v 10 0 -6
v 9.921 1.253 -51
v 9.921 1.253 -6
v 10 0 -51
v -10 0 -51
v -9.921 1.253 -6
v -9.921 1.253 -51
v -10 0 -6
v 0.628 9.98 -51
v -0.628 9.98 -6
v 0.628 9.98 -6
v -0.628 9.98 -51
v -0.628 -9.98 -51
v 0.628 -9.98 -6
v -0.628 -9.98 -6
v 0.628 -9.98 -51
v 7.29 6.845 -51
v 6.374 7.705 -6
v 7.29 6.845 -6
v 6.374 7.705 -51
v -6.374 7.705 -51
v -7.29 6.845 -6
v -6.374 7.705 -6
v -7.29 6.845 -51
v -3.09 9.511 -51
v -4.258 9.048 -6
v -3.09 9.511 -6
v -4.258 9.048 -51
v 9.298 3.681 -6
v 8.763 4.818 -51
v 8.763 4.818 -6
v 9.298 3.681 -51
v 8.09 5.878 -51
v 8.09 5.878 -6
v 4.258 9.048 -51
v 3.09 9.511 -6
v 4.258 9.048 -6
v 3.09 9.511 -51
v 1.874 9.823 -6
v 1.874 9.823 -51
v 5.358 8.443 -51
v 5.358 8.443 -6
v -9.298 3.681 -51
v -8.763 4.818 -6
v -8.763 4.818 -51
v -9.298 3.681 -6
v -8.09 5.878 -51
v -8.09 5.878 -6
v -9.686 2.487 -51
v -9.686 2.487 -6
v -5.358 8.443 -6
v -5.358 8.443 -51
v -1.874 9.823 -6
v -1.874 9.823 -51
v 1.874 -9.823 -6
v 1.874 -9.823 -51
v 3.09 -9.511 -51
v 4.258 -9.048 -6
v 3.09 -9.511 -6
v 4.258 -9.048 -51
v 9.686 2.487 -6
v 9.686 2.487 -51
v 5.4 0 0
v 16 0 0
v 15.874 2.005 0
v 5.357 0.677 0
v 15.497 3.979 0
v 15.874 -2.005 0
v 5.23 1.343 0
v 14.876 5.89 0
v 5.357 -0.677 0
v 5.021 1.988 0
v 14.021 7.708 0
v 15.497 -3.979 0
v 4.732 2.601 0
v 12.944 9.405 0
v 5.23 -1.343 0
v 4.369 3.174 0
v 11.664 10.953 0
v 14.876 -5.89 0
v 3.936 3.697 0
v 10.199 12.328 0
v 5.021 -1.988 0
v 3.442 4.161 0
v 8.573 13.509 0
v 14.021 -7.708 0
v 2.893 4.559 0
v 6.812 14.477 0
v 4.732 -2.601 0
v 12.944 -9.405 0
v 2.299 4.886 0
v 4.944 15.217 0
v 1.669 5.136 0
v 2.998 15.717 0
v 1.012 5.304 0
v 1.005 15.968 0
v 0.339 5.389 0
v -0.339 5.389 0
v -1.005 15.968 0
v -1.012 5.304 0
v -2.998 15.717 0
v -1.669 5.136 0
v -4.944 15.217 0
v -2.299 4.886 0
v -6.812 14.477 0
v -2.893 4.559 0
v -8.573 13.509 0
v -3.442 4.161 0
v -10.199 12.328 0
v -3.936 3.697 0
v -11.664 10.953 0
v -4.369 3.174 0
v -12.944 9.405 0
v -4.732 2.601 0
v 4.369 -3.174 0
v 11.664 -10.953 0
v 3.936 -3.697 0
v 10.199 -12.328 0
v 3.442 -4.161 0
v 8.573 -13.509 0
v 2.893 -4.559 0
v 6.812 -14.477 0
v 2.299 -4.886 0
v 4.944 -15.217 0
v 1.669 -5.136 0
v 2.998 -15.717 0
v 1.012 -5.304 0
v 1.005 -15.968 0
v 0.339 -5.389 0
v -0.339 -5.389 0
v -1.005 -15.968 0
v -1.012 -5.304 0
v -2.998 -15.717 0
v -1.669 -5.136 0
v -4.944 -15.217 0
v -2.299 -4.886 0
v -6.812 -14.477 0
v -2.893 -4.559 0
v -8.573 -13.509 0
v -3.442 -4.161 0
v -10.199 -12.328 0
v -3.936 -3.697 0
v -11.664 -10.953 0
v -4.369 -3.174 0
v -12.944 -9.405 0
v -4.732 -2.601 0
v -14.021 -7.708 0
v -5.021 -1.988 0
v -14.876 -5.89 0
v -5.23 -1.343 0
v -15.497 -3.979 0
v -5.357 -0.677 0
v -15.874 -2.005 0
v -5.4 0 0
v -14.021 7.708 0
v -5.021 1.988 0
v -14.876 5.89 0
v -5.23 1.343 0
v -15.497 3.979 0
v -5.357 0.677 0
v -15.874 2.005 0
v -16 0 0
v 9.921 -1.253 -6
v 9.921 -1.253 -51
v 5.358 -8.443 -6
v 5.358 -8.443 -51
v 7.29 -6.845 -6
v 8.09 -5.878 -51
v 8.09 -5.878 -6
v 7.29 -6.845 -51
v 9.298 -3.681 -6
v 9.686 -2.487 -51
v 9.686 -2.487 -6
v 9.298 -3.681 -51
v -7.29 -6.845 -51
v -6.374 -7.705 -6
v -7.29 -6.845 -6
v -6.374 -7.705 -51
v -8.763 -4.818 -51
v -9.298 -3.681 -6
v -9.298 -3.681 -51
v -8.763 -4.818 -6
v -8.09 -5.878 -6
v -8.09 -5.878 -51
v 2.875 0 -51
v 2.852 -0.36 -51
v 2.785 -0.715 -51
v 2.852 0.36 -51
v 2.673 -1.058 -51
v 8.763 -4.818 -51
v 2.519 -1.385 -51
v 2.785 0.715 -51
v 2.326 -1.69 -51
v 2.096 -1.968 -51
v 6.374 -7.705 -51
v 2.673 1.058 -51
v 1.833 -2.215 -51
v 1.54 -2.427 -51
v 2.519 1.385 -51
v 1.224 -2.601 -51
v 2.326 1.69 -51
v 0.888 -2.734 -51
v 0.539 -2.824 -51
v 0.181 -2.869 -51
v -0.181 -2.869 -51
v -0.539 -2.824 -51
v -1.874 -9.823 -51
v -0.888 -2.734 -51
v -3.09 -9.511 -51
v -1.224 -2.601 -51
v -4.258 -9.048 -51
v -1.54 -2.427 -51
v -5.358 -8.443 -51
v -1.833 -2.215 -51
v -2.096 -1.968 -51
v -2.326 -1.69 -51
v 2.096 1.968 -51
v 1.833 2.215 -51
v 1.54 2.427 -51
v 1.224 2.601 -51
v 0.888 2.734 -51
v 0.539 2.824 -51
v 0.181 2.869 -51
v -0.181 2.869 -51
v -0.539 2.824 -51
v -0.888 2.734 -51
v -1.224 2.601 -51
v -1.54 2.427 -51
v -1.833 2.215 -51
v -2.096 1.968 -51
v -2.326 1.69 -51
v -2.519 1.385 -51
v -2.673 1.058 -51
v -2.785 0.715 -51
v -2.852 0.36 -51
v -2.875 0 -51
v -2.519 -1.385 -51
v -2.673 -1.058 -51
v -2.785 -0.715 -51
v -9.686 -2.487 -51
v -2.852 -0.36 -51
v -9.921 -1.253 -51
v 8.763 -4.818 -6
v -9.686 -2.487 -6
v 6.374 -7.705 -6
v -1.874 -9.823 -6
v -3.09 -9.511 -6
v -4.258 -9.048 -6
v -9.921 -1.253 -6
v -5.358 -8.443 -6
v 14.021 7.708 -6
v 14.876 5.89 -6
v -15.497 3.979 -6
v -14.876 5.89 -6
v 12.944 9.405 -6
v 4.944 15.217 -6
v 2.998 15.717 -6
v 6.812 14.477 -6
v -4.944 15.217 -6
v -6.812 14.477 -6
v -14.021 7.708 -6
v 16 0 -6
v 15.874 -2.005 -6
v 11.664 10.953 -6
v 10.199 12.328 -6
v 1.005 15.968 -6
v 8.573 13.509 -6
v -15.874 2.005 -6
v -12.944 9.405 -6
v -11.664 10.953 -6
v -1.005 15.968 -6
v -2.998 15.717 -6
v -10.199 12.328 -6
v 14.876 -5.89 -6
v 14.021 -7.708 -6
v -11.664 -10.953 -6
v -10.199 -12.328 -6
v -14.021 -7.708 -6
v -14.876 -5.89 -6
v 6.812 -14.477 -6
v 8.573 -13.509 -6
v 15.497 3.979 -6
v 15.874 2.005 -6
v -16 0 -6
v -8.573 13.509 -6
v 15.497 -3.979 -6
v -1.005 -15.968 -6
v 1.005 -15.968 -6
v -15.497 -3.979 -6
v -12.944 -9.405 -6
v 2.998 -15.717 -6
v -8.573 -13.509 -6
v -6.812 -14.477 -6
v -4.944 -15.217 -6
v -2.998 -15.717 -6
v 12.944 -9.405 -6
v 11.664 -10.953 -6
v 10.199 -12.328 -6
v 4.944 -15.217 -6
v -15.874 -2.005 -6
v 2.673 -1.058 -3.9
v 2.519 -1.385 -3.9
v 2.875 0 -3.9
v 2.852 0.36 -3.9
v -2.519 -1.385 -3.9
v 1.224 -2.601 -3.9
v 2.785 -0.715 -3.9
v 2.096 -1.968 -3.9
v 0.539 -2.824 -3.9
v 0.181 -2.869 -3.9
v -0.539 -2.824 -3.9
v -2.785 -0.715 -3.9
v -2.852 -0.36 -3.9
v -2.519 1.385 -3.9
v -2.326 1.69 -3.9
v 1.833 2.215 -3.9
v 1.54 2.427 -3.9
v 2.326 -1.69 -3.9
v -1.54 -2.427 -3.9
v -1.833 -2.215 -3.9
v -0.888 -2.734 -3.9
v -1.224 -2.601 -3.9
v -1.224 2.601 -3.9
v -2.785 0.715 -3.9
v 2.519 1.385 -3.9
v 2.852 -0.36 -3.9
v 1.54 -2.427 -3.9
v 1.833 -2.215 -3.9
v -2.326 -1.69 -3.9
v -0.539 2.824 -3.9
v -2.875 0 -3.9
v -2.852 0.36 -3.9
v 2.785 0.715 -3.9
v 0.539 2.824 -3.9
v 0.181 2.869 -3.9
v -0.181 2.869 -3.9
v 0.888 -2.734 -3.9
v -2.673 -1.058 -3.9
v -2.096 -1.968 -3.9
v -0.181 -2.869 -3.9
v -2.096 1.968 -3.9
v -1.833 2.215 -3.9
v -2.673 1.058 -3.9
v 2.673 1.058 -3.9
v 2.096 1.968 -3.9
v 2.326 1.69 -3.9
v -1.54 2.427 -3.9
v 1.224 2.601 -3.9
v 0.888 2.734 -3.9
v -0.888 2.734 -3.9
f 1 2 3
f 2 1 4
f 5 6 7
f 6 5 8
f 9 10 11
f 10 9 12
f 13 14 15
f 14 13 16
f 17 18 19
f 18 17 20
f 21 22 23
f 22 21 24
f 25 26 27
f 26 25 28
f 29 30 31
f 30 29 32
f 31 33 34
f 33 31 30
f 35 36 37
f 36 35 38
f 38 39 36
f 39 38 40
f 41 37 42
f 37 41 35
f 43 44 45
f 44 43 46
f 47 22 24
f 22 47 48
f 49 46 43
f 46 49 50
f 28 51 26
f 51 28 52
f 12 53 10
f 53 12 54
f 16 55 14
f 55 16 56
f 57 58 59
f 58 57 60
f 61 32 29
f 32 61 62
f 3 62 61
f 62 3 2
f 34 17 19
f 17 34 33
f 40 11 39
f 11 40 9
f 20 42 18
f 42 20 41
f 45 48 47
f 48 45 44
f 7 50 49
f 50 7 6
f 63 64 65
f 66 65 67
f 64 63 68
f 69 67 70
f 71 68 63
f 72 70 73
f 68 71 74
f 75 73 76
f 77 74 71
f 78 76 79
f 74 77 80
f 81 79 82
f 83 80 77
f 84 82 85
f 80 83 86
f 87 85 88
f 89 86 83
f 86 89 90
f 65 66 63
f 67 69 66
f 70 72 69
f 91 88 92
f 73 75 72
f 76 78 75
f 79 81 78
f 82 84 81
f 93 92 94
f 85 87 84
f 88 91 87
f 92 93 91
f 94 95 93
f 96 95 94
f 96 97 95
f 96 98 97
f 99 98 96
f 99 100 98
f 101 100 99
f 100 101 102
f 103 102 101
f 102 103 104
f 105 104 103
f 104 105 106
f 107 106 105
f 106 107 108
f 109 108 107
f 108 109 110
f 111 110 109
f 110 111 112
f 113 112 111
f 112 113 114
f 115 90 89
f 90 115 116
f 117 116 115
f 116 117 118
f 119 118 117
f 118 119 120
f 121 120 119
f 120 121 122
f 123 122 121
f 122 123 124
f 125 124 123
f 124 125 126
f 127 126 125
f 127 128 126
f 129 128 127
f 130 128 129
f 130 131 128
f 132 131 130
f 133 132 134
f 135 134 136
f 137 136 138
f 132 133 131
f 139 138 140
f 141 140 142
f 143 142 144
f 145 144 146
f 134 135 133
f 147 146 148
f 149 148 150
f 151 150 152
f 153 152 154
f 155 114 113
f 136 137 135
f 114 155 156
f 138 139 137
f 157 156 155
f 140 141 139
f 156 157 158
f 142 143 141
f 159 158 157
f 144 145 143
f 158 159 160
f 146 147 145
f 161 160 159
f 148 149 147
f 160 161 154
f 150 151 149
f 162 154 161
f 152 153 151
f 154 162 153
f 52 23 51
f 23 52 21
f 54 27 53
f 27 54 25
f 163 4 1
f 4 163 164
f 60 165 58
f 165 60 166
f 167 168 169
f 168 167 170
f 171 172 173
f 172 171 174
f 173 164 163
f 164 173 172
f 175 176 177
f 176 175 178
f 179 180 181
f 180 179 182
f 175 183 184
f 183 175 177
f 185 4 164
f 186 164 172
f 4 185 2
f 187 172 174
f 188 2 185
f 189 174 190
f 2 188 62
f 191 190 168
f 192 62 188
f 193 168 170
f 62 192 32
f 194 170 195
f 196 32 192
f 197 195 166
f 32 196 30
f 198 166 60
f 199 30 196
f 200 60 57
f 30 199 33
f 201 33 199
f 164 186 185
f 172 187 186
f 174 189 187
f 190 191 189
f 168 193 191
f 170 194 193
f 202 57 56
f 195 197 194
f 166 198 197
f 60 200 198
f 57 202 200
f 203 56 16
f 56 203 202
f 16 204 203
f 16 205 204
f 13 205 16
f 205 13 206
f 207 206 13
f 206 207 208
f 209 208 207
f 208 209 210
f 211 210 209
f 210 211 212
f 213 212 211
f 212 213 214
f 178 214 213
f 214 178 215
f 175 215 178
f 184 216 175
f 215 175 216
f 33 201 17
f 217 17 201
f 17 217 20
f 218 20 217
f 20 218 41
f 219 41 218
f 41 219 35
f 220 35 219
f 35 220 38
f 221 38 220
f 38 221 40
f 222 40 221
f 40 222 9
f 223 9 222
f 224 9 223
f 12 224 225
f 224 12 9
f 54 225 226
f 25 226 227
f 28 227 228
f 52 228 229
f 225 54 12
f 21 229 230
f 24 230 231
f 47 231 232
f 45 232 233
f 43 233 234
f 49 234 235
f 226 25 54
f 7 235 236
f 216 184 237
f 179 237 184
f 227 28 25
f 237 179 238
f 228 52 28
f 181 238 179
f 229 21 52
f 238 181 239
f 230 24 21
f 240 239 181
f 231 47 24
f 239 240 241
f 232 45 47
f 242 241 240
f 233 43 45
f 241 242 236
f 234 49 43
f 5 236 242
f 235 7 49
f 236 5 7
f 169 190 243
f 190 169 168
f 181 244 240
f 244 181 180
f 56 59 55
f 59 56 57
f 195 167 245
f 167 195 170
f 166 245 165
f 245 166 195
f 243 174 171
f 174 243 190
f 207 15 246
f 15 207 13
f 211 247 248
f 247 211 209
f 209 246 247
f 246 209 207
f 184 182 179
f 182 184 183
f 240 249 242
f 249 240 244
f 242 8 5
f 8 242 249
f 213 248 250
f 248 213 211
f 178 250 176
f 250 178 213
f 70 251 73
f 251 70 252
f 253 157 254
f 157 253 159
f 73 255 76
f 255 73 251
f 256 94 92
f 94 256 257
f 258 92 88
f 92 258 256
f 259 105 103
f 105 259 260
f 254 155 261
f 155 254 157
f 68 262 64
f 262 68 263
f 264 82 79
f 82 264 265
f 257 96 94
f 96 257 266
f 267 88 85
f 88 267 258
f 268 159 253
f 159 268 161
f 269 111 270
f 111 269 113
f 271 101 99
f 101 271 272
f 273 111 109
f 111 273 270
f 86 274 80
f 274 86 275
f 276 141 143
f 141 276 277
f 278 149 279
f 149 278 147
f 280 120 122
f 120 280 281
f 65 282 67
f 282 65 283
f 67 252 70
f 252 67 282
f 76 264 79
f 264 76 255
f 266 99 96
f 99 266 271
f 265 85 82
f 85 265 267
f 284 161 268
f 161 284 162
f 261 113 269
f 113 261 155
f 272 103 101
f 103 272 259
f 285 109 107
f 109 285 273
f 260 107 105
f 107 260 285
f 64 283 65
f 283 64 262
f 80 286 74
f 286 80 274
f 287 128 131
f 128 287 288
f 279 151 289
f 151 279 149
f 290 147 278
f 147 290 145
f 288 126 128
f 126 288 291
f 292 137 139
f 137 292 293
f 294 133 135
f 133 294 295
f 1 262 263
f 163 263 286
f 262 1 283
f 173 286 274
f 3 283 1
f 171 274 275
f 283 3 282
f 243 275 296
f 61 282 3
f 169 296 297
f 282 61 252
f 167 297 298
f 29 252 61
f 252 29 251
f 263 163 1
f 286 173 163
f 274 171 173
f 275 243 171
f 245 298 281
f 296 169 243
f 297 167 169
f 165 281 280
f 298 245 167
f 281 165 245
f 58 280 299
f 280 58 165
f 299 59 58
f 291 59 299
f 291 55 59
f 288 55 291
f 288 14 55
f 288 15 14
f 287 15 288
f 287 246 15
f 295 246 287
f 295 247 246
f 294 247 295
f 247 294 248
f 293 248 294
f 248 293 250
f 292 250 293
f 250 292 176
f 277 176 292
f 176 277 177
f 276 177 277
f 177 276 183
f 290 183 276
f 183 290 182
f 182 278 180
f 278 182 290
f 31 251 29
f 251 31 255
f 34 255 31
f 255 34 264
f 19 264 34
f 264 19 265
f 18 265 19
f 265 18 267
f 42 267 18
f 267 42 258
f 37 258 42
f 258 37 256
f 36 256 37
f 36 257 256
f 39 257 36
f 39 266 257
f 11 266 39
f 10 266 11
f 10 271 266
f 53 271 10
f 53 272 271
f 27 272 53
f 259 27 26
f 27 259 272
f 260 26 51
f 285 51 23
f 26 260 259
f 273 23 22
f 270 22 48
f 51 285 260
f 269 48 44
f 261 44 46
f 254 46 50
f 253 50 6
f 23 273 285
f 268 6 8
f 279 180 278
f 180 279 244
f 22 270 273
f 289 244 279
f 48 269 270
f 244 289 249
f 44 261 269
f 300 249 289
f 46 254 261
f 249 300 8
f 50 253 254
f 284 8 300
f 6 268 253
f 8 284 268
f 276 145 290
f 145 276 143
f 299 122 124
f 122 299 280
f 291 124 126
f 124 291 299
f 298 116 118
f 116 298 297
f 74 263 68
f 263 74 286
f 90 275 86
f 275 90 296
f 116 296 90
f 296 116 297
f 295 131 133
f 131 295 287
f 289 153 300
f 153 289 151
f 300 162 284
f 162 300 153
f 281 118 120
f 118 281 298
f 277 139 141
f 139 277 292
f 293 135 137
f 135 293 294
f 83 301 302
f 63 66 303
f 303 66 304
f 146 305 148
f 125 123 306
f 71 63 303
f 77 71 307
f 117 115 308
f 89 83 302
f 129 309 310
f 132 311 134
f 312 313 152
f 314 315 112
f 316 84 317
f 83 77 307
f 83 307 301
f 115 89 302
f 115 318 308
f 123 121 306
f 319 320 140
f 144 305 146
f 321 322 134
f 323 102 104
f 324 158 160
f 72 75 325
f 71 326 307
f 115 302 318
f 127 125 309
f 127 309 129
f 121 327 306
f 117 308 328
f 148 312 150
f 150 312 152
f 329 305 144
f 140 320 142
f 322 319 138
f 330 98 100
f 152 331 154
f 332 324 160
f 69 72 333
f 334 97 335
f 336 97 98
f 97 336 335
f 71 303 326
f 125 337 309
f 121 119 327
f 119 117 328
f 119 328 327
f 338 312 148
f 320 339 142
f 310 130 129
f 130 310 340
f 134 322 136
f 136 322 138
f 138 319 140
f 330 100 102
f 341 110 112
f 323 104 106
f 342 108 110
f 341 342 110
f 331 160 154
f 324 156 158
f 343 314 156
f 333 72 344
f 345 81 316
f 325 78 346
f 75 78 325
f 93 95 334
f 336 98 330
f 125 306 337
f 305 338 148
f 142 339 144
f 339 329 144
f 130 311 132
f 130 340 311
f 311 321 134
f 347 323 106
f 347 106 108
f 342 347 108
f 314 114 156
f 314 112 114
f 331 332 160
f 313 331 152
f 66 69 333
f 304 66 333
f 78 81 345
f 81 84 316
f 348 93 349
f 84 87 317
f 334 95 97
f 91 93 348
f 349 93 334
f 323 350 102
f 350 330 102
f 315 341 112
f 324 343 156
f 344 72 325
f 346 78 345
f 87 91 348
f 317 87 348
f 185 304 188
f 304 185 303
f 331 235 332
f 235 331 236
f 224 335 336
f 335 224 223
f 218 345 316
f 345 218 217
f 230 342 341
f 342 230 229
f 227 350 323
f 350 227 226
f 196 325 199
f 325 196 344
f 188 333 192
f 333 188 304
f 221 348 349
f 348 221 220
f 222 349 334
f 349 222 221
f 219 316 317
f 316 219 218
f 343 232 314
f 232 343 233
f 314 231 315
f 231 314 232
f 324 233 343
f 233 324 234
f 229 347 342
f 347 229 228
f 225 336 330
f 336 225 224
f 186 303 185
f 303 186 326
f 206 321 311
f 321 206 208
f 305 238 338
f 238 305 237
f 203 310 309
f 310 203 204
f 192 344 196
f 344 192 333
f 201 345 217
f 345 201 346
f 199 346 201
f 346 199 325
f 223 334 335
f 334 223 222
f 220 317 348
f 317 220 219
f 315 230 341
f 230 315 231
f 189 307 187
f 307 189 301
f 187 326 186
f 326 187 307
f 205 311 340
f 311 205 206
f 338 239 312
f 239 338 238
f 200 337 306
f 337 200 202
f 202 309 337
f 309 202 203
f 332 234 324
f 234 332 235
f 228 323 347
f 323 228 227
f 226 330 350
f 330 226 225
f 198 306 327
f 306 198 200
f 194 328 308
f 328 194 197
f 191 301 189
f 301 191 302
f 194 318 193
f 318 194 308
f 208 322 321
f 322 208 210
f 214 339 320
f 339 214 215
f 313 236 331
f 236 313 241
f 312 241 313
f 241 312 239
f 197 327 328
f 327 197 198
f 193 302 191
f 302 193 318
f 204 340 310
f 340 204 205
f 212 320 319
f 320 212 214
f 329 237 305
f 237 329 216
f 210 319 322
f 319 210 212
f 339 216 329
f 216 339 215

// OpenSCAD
$fn = 50;


difference() {
	union() {
		translate(v = [0, 0, -51.0000000000]) {
			cylinder(h = 51, r = 10.0000000000);
		}
		translate(v = [0, 0, -6.0000000000]) {
			cylinder(h = 6, r = 16.0000000000);
		}
	}
	union() {
		translate(v = [0, 0, 0]) {
			rotate(a = [0, 0, 0]) {
				difference() {
					union() {
						#translate(v = [0, 0, -51.0000000000]) {
							cylinder(h = 51, r = 2.6000000000);
						}
						#translate(v = [0, 0, -3.9000000000]) {
							cylinder(h = 3.9000000000, r1 = 2.8750000000, r2 = 5.4000000000);
						}
						#translate(v = [0, 0, -51.0000000000]) {
							cylinder(h = 51, r = 2.8750000000);
						}
						#translate(v = [0, 0, -51.0000000000]) {
							cylinder(h = 51, r = 2.6000000000);
						}
					}
					union();
				}
			}
		}
	}
}
